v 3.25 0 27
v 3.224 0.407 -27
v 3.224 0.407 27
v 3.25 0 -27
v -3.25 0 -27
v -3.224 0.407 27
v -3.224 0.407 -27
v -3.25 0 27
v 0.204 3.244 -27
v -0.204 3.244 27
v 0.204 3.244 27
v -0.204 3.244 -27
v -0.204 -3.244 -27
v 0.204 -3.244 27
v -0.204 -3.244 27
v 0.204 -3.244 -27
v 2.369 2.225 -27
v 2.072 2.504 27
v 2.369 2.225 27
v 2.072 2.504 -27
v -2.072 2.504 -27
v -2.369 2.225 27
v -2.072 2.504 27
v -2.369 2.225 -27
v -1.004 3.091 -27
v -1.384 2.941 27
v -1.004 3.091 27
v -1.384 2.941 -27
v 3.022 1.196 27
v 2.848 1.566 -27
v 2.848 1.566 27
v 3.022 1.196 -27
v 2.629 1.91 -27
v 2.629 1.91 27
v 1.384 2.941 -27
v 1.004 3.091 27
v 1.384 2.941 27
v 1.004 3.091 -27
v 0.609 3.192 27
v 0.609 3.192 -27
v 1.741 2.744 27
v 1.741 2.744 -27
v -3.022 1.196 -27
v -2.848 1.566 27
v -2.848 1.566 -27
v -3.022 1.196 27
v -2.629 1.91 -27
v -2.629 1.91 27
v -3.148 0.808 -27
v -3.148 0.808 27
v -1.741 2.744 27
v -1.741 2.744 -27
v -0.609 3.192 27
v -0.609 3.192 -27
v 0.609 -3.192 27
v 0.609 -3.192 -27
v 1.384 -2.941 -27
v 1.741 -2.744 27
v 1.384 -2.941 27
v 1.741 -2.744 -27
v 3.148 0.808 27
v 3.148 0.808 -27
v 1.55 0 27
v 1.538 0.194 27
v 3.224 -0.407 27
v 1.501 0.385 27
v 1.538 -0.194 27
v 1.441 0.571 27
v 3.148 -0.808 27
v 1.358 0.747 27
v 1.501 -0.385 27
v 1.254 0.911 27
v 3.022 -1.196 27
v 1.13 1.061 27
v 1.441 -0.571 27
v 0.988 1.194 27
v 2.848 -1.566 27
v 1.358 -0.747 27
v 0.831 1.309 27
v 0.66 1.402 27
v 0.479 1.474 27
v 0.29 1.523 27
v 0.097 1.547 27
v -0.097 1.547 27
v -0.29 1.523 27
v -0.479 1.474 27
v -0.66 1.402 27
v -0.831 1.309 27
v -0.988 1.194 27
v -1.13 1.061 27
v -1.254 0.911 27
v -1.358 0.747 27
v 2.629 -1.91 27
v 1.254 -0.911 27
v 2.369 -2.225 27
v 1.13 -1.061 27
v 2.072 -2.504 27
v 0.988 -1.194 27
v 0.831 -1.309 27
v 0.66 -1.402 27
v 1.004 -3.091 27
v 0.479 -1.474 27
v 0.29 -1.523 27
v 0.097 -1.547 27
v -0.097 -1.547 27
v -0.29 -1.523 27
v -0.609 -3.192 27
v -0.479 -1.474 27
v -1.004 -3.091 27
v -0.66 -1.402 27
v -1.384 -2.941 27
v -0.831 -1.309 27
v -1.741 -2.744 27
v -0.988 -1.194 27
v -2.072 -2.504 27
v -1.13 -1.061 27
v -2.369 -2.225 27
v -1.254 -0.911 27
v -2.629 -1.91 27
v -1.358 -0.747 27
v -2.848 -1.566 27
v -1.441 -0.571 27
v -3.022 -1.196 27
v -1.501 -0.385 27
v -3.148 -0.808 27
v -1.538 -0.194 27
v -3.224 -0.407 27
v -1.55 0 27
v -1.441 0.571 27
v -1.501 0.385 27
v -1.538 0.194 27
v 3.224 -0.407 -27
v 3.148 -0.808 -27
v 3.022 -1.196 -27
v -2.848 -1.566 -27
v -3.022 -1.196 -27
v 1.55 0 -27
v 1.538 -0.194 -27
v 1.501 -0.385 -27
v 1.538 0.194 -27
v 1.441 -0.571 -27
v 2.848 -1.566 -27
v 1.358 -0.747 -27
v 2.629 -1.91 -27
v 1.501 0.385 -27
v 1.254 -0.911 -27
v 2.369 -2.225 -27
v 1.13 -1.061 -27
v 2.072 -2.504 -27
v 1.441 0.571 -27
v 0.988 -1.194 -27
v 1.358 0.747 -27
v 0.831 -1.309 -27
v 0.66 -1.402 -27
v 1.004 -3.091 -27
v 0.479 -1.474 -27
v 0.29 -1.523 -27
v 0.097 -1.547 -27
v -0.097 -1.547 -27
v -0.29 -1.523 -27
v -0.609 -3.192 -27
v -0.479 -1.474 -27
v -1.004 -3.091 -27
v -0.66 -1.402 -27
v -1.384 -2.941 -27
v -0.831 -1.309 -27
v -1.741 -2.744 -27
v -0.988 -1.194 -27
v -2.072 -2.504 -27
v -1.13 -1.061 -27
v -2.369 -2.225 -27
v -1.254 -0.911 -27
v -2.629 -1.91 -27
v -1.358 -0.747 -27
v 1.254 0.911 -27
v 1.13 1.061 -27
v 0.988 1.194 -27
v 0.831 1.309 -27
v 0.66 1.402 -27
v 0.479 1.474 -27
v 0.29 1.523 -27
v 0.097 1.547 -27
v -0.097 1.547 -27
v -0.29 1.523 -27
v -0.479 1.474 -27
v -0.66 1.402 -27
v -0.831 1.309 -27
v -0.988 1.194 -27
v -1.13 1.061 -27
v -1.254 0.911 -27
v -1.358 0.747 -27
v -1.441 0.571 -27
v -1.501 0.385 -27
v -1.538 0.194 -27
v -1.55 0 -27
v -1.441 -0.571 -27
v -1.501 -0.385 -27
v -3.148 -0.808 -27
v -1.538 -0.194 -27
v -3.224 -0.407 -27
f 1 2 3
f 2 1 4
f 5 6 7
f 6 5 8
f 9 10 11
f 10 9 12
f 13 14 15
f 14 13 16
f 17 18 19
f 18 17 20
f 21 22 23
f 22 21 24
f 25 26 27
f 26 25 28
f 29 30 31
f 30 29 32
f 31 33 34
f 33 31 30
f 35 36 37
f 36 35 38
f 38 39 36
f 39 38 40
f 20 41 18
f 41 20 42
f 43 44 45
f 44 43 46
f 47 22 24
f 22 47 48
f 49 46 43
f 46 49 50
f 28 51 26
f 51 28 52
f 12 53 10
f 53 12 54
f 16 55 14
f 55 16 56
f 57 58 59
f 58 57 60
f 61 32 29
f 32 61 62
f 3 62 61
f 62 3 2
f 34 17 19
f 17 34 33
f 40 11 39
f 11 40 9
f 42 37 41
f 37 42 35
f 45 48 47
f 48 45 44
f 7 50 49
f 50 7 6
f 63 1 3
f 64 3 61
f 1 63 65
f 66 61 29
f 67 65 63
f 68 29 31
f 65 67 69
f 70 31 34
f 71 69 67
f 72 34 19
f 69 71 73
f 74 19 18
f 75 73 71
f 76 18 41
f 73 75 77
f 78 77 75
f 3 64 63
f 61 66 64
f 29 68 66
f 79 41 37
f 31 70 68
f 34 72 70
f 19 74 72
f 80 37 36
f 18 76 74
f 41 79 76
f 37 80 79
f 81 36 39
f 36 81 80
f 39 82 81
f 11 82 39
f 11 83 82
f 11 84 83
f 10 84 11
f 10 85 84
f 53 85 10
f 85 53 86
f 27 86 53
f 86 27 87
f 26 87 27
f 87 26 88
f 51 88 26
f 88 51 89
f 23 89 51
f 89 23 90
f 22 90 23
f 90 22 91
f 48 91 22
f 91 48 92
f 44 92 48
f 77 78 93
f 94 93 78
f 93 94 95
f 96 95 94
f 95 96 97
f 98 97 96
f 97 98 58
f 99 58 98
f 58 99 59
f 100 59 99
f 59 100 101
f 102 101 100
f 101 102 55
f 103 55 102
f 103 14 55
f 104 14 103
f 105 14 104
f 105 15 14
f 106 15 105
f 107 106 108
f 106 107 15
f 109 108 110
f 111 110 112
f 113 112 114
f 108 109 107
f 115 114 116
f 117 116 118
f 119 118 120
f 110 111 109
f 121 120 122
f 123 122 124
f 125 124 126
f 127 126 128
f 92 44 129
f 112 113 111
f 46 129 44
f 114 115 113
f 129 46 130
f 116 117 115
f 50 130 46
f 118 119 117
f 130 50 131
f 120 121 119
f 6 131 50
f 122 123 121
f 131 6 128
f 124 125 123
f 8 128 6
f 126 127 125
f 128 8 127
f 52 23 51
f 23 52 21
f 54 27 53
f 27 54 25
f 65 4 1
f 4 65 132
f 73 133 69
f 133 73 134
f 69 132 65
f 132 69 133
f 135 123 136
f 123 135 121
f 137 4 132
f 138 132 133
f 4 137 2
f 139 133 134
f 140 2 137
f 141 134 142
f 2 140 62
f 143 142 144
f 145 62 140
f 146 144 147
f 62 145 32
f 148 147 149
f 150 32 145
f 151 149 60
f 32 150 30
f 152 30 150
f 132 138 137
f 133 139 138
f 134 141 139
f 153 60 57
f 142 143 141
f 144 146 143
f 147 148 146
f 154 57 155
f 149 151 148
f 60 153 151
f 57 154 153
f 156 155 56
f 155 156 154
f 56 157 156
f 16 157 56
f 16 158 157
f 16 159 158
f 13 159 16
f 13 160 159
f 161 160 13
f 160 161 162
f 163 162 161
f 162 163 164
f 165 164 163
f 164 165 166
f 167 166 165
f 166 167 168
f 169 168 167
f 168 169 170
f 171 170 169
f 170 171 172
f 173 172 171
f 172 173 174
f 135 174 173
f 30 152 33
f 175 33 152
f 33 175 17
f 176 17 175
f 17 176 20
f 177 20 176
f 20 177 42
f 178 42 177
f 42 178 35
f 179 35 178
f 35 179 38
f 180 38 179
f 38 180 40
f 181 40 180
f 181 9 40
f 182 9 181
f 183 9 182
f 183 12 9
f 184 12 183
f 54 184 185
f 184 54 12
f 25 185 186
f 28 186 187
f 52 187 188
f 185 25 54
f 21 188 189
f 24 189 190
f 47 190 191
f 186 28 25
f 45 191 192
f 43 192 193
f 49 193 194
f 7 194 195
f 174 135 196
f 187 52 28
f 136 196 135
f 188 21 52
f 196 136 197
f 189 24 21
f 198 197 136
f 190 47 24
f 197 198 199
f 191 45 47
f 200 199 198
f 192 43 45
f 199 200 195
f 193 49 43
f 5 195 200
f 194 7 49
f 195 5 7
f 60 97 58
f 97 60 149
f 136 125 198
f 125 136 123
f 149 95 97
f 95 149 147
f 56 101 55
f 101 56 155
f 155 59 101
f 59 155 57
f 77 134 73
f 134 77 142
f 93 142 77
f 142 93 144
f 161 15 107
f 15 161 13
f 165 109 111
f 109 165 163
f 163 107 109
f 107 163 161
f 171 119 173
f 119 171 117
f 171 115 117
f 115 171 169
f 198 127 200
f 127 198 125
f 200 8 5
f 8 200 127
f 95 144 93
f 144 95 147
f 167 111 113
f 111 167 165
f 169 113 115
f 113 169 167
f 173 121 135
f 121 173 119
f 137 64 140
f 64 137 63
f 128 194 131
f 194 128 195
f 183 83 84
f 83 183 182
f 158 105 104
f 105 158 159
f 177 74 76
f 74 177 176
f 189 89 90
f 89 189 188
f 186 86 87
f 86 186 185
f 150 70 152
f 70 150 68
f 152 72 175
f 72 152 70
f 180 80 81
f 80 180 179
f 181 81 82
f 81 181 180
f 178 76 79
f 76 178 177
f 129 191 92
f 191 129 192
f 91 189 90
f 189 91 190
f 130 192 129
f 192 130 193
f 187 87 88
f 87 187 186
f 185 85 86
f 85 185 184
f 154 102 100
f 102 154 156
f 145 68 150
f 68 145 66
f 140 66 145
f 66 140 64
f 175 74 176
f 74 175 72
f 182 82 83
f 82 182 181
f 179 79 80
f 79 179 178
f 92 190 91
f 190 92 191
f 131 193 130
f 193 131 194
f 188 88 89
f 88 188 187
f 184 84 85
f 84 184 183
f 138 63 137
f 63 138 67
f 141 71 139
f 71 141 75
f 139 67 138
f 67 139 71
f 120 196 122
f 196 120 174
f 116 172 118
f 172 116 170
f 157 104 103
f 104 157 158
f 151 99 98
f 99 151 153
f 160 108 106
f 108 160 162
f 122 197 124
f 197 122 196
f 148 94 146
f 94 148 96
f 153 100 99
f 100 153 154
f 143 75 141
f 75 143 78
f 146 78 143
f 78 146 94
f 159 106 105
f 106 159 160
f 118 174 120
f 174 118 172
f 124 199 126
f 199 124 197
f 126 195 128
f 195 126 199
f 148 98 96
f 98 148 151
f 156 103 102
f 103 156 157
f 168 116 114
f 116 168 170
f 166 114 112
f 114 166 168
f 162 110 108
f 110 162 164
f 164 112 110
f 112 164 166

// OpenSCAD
$fn = 50;


difference() {
	union() {
		translate(v = [0, 0, -27.0000000000]) {
			cylinder(h = 54, r = 3.2500000000);
		}
	}
	union() {
		translate(v = [0, 0, -100.0000000000]) {
			cylinder(h = 200, r = 1.5500000000);
		}
	}
}
